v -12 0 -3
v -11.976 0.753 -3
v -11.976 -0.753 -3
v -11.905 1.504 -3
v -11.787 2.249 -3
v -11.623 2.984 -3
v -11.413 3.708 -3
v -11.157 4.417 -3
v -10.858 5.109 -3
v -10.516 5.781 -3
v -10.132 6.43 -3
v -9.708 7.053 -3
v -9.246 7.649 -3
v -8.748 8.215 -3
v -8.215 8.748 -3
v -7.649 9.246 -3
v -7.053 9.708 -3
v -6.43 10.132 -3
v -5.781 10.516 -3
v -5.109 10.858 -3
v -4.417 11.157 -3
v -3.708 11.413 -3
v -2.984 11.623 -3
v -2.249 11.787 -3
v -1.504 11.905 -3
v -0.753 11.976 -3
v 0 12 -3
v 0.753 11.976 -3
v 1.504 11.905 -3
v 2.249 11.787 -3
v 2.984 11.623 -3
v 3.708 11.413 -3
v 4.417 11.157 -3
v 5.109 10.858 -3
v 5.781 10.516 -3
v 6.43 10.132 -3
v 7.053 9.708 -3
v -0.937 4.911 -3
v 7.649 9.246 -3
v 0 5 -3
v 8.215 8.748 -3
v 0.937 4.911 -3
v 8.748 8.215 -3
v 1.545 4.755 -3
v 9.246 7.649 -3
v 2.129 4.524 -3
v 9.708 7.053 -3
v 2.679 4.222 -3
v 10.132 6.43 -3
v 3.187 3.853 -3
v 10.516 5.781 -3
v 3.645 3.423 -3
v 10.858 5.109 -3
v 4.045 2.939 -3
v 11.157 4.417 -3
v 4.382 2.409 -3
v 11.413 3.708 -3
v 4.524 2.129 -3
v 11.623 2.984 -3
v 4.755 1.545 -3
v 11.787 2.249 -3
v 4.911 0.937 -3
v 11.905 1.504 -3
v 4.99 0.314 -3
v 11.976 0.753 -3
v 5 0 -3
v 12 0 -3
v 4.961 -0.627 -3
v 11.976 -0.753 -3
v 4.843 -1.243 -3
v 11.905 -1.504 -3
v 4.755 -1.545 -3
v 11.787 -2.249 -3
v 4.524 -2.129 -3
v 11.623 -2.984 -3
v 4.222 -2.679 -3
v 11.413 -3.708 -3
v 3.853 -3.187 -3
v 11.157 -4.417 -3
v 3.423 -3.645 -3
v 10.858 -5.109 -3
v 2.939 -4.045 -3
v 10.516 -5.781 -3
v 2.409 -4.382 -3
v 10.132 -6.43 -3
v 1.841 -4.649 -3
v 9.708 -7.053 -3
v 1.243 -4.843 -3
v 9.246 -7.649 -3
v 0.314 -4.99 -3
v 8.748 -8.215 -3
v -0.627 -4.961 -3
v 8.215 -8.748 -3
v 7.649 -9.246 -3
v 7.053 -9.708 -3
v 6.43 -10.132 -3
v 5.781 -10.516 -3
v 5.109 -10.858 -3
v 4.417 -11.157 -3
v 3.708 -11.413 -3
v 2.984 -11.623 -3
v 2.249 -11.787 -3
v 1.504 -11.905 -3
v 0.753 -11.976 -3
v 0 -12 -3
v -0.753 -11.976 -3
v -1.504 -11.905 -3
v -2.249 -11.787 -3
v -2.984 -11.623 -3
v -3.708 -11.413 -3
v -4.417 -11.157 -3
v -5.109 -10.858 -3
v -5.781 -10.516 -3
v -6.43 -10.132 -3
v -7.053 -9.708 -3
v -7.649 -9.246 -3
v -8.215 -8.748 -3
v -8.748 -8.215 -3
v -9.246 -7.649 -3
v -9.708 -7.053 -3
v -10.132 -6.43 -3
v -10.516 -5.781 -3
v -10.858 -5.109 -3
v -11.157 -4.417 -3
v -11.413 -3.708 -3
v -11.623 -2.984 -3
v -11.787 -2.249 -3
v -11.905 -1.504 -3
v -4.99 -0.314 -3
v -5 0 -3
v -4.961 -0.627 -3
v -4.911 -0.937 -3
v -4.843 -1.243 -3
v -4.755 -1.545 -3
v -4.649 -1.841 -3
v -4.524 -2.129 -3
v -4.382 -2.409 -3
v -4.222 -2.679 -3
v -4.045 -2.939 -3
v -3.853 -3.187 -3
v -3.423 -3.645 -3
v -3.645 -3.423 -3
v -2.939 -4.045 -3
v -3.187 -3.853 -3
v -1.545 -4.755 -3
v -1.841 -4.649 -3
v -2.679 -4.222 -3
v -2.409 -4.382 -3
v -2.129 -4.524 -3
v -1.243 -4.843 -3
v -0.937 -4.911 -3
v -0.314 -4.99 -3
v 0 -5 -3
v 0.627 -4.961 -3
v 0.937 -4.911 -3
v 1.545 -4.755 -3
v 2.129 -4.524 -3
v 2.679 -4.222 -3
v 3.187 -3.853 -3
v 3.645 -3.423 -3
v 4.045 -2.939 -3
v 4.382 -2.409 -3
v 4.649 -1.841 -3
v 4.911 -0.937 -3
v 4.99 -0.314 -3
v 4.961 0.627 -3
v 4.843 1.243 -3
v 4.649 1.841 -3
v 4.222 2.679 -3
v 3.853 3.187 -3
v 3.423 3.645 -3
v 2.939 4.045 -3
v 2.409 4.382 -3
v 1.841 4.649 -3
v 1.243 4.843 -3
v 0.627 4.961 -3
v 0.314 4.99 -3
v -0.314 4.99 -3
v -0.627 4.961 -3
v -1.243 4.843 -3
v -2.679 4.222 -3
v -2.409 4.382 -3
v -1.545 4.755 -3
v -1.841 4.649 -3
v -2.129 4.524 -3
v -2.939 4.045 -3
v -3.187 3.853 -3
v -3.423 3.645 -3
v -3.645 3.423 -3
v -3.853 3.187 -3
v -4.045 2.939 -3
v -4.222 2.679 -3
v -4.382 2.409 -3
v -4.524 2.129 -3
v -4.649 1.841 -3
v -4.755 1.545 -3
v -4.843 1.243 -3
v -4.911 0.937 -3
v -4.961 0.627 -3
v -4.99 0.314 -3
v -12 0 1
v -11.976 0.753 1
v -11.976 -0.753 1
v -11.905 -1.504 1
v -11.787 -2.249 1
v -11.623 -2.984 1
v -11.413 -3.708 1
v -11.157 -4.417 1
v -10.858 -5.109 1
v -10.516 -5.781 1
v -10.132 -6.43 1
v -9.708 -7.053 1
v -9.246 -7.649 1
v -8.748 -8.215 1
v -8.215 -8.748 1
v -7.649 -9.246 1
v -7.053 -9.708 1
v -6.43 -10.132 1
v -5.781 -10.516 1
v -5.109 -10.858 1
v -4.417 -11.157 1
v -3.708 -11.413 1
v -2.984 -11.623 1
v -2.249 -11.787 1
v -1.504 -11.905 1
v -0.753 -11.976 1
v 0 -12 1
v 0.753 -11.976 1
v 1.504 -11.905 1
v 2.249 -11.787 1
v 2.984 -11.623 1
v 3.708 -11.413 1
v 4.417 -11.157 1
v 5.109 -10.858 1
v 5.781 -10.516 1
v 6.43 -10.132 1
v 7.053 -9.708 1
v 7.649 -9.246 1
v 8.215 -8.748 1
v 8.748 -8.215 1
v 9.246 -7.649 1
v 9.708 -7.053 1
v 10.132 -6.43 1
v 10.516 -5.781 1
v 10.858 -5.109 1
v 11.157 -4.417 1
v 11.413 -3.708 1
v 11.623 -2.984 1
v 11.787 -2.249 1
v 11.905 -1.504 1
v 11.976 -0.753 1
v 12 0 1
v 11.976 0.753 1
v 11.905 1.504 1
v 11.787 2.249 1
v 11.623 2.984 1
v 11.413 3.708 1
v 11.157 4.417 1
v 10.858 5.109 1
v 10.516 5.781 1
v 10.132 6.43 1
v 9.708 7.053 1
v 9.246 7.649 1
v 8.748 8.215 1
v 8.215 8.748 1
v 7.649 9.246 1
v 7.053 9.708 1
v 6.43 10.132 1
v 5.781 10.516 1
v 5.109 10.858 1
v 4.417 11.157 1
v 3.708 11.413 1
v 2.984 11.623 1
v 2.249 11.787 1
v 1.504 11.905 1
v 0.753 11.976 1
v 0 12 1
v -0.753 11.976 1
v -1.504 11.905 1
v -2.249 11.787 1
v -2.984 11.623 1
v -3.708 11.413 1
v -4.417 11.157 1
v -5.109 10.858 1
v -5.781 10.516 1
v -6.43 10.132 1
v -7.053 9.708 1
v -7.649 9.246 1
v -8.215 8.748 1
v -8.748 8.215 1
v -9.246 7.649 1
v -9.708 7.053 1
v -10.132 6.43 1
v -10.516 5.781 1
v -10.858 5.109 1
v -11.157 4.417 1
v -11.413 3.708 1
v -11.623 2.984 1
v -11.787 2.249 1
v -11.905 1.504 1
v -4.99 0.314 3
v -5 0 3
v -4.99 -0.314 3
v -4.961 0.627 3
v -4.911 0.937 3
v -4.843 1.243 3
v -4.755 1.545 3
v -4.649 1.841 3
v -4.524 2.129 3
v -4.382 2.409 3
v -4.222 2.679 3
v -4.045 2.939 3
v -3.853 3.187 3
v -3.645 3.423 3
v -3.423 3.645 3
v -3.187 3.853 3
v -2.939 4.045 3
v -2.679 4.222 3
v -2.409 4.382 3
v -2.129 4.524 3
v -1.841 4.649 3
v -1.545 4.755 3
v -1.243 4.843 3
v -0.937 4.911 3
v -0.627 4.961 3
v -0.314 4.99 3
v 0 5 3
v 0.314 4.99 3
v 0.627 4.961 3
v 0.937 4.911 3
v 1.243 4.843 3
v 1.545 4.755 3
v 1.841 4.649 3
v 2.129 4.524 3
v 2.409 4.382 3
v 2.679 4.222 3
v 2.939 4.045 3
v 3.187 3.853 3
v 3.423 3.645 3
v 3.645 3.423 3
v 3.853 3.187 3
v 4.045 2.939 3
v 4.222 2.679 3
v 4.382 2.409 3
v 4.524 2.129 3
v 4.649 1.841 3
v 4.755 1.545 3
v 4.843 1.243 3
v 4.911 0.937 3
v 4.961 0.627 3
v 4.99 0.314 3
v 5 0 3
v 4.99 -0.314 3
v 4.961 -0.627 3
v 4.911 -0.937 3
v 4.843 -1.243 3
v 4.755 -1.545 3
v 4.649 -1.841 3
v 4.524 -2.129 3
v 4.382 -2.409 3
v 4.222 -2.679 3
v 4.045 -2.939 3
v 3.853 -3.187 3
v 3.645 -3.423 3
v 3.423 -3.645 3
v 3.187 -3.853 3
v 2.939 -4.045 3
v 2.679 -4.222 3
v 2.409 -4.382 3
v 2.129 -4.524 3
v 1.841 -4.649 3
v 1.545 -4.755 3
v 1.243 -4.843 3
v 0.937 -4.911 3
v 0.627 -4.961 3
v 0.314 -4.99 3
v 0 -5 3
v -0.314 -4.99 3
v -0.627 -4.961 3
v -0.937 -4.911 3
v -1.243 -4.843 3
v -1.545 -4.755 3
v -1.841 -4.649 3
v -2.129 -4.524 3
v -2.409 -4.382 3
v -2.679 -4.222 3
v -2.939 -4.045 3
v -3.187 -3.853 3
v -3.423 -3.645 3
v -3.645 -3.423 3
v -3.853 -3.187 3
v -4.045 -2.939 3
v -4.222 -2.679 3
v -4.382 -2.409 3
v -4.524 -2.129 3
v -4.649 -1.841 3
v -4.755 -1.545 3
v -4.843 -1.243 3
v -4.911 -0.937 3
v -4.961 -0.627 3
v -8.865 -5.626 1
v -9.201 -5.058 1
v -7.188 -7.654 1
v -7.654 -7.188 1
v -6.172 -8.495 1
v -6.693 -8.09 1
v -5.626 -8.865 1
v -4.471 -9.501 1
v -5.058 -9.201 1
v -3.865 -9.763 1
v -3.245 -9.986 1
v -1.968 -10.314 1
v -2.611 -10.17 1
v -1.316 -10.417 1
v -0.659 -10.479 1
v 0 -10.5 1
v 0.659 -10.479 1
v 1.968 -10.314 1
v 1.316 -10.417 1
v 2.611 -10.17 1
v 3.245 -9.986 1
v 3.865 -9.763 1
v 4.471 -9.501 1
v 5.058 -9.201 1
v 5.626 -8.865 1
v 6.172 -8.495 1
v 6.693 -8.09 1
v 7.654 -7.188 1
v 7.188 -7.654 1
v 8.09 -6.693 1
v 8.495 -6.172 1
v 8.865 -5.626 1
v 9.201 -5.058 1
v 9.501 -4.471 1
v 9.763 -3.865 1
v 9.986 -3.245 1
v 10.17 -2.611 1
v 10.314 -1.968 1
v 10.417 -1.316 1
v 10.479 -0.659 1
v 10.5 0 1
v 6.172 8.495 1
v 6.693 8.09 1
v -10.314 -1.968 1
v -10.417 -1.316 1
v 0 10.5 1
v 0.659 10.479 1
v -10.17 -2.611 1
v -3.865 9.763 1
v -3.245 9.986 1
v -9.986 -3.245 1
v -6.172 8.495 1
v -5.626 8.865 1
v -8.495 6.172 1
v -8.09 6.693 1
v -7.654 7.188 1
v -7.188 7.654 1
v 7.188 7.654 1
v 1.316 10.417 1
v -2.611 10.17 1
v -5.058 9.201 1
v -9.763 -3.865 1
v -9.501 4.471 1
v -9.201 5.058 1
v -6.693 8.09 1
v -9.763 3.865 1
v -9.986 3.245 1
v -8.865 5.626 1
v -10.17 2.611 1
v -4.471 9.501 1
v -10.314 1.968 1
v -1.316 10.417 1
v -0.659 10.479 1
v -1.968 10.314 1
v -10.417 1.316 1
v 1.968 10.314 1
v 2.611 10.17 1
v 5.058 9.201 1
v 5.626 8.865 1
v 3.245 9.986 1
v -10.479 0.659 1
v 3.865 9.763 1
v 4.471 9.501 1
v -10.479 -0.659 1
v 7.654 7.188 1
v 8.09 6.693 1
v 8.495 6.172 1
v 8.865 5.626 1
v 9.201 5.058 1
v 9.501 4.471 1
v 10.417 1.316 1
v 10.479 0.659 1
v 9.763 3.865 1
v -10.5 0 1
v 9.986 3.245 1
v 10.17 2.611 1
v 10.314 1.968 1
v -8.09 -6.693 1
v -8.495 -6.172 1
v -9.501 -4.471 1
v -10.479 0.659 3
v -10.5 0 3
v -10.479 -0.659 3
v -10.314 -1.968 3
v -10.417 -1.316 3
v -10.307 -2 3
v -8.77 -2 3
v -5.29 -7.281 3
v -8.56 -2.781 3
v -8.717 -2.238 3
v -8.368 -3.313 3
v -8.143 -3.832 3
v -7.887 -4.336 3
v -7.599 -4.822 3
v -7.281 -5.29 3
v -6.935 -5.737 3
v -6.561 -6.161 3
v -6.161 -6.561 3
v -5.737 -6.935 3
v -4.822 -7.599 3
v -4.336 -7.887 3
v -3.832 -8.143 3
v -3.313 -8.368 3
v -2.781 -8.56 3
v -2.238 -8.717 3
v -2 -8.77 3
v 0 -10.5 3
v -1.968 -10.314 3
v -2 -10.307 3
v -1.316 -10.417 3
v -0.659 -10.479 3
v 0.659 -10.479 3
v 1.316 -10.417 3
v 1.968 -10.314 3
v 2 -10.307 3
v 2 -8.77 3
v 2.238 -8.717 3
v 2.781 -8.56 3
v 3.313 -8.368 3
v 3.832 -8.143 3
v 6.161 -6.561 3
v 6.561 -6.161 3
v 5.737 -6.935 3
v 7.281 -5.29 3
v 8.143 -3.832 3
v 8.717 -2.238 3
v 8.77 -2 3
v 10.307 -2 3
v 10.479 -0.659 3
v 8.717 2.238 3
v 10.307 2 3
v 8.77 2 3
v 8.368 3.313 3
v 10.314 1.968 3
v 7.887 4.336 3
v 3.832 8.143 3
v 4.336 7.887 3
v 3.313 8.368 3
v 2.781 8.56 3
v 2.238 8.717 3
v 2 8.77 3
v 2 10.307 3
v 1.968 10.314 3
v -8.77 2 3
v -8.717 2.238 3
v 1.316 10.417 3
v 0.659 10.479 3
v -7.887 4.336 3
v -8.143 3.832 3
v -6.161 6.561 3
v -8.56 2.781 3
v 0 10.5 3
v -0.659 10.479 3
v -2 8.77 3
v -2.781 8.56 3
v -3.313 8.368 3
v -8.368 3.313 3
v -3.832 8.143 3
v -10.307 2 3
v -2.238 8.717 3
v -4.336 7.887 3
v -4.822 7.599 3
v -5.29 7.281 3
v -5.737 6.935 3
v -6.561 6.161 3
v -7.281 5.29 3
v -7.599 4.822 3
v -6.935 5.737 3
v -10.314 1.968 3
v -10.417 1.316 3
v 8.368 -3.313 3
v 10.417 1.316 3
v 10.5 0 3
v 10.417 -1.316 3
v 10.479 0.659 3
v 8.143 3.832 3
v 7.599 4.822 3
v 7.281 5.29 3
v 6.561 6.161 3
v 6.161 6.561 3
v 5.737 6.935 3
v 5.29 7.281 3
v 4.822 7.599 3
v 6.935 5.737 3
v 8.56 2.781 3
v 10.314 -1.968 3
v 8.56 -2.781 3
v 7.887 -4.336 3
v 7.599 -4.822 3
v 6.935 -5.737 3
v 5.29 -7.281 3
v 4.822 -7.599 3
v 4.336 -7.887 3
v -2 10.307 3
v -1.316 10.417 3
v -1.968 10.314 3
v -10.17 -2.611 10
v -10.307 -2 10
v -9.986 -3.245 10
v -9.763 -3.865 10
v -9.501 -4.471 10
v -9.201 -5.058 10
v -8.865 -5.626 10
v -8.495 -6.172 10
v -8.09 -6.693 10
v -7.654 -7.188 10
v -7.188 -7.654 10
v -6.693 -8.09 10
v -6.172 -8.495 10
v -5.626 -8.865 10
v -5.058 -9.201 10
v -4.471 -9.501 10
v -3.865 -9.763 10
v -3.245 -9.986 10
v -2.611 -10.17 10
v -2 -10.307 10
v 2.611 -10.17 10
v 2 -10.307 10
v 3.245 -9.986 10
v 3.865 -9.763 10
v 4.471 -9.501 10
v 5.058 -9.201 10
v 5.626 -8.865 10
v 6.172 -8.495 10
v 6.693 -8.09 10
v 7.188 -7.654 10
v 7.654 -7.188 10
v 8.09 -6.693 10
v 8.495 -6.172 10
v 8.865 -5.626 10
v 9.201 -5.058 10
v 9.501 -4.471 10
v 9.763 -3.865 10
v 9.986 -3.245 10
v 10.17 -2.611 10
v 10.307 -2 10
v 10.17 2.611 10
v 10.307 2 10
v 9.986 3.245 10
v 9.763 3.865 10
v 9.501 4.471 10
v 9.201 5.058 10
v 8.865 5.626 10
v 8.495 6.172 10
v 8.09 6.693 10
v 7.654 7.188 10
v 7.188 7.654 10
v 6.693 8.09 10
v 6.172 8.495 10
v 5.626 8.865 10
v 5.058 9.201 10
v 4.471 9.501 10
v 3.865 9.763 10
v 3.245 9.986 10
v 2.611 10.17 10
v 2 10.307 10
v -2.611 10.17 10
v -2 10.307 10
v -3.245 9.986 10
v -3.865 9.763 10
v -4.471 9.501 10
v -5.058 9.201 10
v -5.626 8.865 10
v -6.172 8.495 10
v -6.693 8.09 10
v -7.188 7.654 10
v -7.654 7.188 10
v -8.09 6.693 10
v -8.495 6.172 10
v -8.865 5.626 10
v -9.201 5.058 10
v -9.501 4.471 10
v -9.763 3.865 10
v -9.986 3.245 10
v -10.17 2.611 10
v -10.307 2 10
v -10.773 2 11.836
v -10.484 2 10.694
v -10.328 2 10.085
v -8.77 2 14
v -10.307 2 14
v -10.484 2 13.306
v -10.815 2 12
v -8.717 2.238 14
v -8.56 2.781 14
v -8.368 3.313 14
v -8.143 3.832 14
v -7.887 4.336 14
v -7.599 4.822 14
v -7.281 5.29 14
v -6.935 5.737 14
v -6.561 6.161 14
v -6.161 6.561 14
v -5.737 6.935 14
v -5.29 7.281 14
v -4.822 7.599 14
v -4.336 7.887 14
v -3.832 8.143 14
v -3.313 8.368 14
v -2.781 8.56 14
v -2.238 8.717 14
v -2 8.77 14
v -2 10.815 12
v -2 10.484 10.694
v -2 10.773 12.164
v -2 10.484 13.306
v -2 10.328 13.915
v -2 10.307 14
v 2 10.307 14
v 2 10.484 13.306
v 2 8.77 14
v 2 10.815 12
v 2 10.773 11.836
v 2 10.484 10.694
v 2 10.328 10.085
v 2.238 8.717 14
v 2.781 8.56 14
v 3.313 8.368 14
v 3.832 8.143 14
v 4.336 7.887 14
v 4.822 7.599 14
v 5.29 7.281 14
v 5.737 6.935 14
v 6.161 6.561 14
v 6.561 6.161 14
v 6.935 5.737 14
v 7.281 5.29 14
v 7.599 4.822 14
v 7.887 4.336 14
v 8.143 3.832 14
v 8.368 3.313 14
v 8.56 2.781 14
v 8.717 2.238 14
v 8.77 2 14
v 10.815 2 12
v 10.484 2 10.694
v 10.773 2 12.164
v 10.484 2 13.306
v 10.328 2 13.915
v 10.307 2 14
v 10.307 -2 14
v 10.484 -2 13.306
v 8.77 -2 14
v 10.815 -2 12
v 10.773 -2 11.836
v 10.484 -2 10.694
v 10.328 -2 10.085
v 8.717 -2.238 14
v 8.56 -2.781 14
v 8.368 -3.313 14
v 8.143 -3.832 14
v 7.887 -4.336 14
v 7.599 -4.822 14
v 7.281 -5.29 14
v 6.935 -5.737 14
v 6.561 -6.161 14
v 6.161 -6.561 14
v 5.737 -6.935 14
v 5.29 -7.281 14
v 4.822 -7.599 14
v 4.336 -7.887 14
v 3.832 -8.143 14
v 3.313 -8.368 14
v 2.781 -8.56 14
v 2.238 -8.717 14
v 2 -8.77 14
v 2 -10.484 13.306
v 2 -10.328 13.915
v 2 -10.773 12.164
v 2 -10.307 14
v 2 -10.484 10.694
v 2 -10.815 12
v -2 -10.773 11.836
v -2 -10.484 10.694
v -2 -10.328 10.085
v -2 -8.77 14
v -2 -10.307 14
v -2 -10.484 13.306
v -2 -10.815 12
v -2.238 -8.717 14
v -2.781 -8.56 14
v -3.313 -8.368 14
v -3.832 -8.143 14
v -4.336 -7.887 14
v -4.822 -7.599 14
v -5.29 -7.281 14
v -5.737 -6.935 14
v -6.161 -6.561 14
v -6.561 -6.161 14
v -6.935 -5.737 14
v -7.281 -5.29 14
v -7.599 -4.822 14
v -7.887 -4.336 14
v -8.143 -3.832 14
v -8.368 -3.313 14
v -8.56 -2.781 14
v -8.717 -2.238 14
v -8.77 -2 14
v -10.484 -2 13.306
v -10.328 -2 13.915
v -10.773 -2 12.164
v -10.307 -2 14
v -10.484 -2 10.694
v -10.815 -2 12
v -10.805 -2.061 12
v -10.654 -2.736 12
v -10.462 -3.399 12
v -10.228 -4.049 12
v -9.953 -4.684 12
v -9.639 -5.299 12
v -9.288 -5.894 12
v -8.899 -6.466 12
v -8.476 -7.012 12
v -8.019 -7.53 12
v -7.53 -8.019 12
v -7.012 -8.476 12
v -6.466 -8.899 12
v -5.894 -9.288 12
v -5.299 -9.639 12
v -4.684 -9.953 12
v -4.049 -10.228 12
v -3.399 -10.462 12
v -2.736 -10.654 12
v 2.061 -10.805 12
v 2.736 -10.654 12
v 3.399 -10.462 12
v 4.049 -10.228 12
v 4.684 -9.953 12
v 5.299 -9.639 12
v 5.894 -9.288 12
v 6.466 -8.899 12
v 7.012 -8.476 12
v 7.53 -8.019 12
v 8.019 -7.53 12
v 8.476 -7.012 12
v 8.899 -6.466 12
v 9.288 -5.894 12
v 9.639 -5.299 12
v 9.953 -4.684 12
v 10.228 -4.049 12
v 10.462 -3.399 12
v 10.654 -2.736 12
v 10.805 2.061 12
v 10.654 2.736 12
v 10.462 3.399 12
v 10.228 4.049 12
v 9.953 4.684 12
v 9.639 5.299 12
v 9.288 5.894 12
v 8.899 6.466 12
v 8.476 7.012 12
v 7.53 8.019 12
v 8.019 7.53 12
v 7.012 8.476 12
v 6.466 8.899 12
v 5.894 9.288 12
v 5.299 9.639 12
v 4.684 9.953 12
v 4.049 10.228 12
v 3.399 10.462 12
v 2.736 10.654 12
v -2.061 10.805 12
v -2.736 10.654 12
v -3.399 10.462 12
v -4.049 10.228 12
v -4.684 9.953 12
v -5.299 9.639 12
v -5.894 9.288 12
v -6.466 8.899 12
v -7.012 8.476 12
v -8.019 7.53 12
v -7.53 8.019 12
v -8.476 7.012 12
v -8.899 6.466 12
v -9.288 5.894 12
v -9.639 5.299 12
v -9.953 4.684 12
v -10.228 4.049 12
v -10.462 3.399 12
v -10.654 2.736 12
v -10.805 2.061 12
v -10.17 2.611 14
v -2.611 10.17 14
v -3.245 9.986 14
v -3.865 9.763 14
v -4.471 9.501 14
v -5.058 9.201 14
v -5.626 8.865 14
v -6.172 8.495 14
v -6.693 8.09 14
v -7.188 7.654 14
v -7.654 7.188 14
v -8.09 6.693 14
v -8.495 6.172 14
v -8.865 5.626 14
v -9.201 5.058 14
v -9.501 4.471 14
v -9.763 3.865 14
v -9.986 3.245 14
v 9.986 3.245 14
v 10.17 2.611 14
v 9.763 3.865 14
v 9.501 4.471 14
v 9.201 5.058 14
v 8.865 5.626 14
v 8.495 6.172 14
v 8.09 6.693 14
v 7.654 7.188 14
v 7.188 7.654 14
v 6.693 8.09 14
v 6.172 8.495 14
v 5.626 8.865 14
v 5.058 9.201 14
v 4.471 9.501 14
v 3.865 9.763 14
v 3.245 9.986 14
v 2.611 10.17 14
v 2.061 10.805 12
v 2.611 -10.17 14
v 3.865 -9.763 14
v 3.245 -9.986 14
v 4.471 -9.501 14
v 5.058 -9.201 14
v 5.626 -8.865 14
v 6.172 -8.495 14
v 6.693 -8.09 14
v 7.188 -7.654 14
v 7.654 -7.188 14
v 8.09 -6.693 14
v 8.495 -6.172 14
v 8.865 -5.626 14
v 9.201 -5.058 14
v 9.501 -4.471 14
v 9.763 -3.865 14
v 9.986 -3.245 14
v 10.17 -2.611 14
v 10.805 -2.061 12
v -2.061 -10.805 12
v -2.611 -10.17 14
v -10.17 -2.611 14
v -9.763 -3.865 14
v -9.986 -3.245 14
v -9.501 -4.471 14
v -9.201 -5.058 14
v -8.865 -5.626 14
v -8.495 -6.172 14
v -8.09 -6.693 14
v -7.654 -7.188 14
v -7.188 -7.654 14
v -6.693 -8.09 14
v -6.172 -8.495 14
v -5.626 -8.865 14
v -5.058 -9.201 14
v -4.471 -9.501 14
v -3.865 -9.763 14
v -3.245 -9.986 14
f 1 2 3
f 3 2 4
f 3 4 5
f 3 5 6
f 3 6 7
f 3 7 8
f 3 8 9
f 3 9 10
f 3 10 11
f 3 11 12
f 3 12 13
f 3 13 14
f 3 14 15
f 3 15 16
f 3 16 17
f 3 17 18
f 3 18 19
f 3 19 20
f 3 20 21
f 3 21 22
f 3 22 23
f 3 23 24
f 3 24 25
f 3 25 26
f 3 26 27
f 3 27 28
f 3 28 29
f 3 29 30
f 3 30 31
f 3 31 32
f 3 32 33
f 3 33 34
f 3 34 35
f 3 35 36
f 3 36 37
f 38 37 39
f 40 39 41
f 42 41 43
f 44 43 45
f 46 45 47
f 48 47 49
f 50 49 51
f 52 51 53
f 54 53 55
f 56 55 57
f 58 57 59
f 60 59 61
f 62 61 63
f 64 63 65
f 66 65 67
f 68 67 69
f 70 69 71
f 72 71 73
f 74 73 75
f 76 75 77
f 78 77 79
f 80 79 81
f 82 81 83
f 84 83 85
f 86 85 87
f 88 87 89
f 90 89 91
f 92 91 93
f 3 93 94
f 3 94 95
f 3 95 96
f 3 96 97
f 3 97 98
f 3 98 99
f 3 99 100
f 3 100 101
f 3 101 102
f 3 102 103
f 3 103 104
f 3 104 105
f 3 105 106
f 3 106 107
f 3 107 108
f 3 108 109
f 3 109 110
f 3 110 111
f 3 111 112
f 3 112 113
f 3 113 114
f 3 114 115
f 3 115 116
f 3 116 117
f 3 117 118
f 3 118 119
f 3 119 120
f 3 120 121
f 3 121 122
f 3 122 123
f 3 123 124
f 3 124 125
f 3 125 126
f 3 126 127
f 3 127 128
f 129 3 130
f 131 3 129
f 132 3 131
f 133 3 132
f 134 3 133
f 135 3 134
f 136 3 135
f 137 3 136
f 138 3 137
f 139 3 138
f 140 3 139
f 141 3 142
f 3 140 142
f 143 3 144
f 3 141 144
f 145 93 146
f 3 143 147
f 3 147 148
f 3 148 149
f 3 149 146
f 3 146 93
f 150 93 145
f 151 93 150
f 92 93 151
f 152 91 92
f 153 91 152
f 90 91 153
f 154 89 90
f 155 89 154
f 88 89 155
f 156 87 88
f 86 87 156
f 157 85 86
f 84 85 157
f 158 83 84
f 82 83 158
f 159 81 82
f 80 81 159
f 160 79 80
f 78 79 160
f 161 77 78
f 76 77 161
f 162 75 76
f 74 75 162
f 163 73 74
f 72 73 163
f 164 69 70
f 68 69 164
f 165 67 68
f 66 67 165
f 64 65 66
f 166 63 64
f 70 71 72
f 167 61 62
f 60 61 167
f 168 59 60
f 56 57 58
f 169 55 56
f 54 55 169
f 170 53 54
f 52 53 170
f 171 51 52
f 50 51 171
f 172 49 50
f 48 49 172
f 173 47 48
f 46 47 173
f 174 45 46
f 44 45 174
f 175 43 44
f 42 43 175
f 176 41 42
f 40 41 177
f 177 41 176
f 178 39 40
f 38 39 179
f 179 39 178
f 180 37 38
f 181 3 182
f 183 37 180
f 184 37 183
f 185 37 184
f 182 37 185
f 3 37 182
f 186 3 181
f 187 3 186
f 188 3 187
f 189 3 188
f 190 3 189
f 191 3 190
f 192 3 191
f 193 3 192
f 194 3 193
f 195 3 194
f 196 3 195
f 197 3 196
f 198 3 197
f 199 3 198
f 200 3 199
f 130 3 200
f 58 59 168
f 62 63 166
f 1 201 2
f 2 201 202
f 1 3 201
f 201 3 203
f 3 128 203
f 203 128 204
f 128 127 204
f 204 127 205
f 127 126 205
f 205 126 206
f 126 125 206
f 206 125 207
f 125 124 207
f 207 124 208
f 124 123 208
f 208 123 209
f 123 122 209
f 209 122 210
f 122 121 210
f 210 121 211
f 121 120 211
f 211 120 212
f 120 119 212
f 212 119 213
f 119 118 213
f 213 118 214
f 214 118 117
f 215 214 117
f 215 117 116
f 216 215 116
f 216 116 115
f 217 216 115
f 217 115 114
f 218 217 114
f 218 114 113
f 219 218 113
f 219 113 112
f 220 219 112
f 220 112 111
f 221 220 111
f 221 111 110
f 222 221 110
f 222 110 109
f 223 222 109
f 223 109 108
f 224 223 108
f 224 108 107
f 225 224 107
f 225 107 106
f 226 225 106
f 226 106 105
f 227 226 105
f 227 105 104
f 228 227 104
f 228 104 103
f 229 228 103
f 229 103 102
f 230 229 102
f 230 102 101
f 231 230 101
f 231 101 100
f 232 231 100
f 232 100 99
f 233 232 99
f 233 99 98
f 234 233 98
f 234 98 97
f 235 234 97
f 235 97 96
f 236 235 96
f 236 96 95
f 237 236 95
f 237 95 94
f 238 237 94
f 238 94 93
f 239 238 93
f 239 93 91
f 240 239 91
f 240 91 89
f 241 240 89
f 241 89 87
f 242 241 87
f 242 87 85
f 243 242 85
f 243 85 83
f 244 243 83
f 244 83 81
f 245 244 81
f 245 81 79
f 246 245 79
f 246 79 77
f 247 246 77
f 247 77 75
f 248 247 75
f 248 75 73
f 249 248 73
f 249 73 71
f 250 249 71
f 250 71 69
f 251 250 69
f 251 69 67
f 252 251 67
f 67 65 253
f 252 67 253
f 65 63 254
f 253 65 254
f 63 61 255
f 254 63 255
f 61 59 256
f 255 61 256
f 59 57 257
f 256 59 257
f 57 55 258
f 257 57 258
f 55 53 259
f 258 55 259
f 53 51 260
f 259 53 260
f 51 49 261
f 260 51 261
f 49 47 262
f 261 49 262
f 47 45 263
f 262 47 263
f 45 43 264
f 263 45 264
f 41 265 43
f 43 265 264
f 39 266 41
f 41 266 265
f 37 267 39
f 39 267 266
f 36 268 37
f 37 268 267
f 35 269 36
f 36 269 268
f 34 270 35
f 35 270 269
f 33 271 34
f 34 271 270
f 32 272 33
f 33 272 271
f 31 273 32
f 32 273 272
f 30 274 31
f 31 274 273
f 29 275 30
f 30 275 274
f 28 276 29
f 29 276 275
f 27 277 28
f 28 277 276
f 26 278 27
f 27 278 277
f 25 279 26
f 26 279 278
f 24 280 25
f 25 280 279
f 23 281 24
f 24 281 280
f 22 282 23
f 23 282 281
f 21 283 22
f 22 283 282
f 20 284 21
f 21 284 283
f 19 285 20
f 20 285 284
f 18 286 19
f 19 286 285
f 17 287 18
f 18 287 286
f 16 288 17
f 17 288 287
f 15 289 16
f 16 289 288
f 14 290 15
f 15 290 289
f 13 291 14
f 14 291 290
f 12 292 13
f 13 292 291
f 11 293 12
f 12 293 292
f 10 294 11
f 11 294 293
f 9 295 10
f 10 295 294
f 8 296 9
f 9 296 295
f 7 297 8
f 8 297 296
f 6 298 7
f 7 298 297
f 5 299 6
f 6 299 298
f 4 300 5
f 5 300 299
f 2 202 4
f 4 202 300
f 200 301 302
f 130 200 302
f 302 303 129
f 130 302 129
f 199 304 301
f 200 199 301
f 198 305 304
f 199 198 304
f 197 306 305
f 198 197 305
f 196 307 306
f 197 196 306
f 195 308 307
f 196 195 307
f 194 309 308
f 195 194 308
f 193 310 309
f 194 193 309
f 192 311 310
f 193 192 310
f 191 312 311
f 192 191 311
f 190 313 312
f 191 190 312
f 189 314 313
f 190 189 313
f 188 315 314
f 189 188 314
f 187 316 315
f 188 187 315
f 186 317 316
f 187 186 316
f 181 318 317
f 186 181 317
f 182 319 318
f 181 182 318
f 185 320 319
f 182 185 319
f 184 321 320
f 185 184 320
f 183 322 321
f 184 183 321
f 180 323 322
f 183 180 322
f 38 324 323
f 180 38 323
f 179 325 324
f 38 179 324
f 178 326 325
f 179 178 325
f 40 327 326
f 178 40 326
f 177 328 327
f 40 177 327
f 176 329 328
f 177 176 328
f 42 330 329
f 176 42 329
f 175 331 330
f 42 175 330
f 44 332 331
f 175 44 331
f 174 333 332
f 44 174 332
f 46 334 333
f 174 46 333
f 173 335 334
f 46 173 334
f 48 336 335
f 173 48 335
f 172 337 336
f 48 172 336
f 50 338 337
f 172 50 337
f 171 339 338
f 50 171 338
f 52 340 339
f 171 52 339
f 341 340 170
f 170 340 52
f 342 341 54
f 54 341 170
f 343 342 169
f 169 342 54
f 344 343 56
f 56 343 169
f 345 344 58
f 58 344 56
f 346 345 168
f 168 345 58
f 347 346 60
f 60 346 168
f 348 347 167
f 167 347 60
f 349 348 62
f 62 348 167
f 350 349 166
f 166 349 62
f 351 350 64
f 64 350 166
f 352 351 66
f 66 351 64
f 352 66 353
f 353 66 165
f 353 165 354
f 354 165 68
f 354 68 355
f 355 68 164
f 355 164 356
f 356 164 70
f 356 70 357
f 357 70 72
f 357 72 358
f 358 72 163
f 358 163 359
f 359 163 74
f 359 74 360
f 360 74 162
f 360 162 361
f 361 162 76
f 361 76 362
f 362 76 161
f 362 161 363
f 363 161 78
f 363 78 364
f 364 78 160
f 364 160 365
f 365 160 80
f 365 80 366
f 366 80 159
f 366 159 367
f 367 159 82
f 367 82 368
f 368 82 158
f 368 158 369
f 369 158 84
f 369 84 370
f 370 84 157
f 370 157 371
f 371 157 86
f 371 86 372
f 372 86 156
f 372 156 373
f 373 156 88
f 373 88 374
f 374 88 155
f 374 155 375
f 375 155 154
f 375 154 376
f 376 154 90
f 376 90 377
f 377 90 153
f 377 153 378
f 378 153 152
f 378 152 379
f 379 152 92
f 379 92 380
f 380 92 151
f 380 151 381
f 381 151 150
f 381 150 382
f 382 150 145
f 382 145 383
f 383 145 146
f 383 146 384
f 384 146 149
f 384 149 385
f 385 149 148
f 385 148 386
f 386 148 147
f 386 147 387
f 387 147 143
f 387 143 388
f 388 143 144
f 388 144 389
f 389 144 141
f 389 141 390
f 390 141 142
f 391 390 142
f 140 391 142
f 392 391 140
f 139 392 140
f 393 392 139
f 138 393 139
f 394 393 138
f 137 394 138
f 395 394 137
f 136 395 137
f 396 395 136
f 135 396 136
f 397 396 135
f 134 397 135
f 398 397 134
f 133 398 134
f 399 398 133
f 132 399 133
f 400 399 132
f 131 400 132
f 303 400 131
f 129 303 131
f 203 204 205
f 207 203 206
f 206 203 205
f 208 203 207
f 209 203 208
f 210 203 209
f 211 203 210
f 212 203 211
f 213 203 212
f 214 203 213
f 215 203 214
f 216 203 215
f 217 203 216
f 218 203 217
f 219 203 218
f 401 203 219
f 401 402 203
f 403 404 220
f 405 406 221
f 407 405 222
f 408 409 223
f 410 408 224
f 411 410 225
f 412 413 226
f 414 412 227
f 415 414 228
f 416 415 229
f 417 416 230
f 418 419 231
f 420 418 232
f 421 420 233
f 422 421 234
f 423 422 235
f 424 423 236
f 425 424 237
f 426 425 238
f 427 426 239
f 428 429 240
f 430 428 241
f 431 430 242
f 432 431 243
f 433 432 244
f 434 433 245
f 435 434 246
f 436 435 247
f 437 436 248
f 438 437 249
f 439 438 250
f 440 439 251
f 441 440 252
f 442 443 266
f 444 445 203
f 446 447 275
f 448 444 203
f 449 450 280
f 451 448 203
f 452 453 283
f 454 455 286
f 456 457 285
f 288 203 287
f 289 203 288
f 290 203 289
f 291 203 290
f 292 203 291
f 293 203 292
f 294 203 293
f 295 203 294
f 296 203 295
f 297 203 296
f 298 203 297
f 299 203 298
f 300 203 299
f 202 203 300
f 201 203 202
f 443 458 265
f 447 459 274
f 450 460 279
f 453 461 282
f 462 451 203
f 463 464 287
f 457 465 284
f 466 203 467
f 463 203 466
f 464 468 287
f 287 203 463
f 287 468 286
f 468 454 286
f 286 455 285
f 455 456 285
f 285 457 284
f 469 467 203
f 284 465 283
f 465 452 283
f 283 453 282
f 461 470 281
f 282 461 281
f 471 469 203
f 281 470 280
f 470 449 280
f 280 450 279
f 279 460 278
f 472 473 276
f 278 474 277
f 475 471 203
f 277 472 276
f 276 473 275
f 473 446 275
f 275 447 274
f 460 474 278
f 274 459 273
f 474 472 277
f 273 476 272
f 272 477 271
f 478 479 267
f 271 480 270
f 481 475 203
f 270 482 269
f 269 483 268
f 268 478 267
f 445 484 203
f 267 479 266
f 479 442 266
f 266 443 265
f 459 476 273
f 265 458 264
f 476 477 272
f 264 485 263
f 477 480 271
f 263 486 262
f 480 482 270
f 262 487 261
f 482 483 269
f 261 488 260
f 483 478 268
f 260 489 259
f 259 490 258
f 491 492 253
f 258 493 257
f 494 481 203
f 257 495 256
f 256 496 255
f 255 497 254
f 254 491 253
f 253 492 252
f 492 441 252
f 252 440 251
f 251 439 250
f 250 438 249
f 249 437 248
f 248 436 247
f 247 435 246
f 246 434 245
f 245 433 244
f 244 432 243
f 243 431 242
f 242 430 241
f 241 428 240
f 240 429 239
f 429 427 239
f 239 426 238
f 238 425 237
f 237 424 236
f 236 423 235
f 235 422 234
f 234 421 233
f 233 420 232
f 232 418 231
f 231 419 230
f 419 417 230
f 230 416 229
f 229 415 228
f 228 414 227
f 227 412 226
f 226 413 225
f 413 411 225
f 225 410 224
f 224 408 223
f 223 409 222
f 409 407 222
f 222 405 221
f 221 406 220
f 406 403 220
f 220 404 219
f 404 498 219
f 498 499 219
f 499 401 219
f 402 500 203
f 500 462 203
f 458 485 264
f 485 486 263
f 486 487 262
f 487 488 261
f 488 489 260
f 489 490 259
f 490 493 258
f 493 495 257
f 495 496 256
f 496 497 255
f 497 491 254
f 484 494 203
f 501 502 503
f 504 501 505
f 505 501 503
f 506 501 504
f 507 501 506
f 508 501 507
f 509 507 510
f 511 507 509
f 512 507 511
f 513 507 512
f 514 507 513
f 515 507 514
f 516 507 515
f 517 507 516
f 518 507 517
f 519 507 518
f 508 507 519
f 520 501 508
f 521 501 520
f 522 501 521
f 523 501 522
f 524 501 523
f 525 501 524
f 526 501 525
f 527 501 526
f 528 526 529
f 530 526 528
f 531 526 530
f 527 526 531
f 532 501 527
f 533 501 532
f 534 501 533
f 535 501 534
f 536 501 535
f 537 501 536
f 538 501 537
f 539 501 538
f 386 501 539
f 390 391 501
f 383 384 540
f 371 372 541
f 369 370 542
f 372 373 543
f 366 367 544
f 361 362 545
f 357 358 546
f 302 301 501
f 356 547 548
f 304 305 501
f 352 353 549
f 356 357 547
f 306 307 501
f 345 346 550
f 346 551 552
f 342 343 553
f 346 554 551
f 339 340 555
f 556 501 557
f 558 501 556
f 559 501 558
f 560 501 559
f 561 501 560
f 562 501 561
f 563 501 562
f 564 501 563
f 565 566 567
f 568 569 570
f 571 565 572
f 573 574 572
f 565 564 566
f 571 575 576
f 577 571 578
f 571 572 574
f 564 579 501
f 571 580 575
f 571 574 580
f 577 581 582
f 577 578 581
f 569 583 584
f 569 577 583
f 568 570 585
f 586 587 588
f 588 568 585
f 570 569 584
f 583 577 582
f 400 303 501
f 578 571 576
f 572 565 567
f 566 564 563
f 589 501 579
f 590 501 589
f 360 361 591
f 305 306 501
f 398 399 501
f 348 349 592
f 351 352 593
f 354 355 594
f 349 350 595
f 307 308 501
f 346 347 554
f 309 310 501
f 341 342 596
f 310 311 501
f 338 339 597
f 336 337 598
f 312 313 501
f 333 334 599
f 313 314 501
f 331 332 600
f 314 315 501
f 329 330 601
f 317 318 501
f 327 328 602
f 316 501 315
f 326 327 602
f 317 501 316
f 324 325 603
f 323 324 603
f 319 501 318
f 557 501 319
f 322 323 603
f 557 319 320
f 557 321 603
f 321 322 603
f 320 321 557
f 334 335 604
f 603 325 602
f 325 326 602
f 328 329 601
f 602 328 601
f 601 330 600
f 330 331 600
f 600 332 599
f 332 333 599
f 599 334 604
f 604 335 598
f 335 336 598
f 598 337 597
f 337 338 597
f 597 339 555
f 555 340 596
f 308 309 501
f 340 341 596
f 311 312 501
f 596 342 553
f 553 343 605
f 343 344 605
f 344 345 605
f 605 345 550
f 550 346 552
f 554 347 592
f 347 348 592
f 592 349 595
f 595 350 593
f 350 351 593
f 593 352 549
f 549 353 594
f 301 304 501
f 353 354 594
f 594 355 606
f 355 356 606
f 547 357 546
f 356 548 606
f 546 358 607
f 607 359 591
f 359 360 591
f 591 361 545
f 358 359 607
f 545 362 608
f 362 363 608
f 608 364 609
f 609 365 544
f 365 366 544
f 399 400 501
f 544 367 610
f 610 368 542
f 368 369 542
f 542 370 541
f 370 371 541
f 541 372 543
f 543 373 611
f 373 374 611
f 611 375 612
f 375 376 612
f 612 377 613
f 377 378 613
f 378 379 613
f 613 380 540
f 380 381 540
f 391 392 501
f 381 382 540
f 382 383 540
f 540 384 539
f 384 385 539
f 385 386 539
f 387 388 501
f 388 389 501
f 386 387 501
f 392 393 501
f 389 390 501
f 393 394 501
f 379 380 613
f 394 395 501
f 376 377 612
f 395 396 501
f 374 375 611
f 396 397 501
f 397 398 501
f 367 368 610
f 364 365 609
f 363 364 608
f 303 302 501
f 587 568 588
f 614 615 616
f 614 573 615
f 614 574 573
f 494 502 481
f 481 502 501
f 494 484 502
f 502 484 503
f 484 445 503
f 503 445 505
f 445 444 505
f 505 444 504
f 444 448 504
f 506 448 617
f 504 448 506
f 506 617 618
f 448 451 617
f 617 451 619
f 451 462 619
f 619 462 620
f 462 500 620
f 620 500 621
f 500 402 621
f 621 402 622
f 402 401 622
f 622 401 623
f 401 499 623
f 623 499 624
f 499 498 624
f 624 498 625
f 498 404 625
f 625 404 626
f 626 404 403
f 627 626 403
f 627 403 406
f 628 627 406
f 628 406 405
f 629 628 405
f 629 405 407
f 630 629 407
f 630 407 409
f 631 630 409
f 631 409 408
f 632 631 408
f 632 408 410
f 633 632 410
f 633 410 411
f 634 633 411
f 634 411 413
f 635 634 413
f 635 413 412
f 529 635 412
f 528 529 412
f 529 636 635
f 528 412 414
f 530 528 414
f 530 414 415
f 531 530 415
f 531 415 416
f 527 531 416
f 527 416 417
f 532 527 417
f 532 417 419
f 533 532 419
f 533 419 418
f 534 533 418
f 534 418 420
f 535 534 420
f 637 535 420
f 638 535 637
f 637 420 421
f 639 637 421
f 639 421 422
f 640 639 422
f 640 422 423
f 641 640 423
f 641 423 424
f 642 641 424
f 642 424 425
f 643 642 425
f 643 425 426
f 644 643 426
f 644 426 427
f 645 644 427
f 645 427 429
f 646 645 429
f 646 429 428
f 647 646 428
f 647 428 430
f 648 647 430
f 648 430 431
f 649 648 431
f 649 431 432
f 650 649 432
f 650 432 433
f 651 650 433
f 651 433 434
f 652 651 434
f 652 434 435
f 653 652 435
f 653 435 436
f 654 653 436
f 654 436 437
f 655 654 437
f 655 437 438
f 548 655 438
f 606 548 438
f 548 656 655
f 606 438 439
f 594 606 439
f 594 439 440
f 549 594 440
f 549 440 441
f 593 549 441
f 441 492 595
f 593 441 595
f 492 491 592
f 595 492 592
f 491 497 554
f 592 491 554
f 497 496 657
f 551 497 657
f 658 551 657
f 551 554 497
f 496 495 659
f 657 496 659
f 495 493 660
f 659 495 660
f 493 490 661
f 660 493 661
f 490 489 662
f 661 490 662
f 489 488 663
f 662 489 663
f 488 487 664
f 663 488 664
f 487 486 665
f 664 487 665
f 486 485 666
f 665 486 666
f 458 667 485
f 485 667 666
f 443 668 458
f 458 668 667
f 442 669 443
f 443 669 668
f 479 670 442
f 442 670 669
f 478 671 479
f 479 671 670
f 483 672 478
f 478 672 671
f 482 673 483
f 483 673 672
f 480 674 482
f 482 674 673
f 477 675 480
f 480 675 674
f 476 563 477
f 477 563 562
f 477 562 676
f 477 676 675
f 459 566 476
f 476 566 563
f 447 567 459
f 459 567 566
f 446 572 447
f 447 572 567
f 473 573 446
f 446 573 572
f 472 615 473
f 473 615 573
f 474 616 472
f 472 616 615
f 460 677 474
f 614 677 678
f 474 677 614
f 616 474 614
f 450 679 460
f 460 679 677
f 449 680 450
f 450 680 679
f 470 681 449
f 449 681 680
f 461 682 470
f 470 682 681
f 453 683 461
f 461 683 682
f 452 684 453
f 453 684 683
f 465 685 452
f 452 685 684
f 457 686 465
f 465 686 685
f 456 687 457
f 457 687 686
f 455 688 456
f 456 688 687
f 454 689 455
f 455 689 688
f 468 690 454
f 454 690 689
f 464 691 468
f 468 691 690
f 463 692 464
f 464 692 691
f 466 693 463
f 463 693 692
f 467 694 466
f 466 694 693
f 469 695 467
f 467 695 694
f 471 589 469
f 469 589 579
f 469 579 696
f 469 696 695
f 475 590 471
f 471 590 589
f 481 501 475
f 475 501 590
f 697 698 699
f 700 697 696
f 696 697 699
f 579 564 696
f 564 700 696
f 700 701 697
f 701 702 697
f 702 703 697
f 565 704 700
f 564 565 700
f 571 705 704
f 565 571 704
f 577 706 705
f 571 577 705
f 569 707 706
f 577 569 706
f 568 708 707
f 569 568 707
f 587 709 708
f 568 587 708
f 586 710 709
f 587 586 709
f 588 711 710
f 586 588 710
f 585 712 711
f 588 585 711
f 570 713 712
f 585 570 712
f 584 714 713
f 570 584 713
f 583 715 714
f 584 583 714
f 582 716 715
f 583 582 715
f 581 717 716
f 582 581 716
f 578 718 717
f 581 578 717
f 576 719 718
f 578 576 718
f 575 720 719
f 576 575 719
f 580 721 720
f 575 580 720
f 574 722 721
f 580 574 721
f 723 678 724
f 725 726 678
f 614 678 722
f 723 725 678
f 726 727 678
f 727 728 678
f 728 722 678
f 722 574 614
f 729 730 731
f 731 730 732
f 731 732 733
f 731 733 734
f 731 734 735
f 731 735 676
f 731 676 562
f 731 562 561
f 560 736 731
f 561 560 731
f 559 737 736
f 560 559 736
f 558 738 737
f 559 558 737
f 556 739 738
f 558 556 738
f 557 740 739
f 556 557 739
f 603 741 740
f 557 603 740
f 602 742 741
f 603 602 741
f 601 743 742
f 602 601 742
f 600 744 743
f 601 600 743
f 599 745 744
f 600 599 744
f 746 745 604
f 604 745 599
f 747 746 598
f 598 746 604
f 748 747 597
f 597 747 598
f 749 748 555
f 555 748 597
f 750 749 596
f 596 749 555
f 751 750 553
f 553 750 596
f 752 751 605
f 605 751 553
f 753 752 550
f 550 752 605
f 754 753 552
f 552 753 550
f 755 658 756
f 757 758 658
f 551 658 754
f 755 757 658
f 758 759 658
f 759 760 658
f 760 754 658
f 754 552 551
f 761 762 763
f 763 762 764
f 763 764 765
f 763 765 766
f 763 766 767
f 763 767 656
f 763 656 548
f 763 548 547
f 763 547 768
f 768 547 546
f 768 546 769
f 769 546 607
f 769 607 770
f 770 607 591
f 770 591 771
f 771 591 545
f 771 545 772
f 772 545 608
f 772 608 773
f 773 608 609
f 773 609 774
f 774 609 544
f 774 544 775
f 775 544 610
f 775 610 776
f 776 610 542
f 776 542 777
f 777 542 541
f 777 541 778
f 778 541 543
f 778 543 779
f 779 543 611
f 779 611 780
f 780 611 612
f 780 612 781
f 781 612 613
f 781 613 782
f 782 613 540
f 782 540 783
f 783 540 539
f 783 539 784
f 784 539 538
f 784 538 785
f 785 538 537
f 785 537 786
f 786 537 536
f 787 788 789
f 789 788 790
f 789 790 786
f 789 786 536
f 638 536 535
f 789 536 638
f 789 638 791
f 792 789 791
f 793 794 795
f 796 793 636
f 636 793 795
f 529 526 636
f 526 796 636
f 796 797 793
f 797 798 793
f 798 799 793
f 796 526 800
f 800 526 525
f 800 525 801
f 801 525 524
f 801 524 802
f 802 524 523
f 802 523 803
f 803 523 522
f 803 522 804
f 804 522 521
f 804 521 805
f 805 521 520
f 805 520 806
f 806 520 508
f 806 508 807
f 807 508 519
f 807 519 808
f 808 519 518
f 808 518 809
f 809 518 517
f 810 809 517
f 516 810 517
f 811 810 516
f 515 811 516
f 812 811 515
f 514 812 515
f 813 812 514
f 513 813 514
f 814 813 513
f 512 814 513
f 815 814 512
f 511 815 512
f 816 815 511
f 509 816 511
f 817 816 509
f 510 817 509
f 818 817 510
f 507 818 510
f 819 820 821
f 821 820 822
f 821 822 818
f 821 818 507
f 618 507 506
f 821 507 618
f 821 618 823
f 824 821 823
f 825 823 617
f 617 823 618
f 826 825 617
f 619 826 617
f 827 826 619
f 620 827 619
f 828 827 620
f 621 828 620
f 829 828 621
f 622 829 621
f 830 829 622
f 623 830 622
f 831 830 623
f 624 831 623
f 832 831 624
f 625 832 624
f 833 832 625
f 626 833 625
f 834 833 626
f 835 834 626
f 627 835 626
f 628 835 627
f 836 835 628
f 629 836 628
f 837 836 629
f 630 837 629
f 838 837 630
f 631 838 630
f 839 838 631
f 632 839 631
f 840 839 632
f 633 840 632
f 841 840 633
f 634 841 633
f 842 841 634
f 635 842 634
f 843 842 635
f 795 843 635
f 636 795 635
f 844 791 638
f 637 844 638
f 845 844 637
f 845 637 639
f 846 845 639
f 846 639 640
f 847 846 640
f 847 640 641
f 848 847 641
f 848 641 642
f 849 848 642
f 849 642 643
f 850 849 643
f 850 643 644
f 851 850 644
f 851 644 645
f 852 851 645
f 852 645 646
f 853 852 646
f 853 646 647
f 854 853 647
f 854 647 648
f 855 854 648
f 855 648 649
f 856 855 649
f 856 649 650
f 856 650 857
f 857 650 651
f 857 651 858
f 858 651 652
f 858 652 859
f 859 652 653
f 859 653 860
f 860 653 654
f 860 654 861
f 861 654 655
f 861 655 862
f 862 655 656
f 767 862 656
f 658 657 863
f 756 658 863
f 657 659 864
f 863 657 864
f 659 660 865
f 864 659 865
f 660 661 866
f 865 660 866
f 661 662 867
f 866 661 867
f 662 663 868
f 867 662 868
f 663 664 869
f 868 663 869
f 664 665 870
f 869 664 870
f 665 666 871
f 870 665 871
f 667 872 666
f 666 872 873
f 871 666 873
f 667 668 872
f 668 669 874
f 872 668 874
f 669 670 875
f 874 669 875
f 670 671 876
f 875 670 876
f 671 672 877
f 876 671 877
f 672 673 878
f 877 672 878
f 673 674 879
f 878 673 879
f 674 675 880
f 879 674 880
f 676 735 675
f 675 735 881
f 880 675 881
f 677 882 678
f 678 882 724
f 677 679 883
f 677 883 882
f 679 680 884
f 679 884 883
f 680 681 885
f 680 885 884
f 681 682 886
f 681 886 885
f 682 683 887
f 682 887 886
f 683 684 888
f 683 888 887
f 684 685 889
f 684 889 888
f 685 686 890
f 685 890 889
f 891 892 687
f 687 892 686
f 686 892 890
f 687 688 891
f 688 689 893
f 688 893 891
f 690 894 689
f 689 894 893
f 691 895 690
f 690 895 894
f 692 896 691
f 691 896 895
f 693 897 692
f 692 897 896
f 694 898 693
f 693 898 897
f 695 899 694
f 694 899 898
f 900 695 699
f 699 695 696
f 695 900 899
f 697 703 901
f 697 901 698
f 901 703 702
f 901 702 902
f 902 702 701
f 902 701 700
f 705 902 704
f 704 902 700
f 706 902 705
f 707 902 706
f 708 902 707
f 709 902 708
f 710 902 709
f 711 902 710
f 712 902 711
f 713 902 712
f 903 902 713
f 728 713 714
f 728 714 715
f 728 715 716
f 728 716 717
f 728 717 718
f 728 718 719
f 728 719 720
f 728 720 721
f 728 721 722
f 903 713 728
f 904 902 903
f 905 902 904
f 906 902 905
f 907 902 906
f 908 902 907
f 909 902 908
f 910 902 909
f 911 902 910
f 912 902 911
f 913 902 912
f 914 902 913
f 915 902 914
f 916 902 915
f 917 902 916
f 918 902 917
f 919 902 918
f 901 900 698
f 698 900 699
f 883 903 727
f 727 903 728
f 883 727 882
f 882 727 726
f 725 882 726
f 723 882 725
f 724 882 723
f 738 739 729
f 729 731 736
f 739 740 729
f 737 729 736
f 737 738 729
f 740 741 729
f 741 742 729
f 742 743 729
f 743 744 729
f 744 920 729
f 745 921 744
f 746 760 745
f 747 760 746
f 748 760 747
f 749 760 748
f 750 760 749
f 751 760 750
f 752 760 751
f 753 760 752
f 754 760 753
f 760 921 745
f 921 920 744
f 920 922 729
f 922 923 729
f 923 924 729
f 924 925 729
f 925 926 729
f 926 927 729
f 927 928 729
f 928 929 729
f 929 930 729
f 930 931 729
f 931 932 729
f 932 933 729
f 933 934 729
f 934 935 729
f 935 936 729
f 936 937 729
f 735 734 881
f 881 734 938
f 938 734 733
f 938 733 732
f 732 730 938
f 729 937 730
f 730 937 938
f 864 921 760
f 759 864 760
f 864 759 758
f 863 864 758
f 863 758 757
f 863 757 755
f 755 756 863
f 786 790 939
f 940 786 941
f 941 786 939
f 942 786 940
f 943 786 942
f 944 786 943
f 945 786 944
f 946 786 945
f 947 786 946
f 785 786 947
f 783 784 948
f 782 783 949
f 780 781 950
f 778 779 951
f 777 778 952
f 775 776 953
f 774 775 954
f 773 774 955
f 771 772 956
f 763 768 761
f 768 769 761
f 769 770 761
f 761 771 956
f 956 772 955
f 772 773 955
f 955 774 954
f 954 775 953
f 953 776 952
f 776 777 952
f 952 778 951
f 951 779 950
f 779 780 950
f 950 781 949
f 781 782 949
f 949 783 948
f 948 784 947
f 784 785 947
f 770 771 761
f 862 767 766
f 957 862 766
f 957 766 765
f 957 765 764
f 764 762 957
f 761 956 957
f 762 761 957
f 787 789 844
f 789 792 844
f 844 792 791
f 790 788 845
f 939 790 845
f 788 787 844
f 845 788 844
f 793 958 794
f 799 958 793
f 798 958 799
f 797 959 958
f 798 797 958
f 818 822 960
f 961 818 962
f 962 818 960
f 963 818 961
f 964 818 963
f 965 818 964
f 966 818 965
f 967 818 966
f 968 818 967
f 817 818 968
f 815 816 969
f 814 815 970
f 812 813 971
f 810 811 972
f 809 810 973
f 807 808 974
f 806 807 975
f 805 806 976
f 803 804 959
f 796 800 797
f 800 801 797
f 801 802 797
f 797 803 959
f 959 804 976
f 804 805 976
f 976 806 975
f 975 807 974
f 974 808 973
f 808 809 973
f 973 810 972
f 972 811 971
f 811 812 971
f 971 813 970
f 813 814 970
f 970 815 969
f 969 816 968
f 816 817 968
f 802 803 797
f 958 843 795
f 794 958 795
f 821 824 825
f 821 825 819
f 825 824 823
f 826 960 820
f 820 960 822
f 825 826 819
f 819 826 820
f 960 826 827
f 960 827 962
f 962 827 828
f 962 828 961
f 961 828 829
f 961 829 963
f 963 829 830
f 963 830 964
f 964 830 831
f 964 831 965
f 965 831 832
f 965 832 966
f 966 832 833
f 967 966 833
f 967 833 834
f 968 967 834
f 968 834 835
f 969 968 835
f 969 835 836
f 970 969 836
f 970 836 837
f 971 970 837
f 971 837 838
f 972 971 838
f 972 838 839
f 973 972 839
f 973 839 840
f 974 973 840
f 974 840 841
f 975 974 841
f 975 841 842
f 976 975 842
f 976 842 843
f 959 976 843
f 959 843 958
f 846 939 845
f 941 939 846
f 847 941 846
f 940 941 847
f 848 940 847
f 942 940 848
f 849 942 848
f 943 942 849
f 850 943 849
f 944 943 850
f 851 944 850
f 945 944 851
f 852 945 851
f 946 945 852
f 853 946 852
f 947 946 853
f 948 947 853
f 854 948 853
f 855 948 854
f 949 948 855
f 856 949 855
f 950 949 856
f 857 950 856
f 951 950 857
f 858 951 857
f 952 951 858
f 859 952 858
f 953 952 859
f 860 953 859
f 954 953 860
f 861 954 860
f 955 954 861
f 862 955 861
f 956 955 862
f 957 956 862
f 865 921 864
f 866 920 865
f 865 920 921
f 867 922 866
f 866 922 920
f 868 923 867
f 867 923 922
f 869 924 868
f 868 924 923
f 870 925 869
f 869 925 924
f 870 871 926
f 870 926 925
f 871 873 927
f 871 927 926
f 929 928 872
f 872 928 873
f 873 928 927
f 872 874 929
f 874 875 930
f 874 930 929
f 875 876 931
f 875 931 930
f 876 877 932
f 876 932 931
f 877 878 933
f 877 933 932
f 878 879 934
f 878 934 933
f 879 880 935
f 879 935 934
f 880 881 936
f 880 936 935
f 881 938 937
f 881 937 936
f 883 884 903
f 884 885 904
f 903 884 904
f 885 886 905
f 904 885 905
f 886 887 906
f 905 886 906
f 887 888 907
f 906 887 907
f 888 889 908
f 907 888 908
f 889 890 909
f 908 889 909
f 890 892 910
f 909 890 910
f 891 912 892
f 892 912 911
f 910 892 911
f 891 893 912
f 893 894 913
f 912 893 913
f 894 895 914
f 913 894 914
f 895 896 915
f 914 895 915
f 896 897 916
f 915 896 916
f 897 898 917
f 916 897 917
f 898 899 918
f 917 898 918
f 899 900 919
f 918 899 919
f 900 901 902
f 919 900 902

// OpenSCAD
$fn=100;

plugOD = 24;
plugID = 10;
height = 6;
clipheight = 12;


annulus();
translate([0,0,clipheight/2+2]) clips();


module annulus(){

difference(){
cylinder(r=plugOD/2,h=height,center=true);

difference(){
translate([0,0,4]) cylinder(r=25/2,h=height,center=true);
translate([0,0,4]) cylinder(r=21/2,h=height,center=true);
}
cylinder(r=plugID/2,h=height+0.1,center=true);
}}


module clips(){
difference(){
union(){
cylinder(r=21/2,h=clipheight,center=true);
translate([0,0,clipheight/2-2]) cylinder(r1=22/2,r2=21/2,h=2);
translate([0,0,clipheight/2-4]) cylinder(r1=21/2,r2=22/2,h=2);
}
cylinder(r=18/2,h=clipheight+1, center=true);
cube([4,30,30],center=true);
cube([30,4,30],center=true);
}}
